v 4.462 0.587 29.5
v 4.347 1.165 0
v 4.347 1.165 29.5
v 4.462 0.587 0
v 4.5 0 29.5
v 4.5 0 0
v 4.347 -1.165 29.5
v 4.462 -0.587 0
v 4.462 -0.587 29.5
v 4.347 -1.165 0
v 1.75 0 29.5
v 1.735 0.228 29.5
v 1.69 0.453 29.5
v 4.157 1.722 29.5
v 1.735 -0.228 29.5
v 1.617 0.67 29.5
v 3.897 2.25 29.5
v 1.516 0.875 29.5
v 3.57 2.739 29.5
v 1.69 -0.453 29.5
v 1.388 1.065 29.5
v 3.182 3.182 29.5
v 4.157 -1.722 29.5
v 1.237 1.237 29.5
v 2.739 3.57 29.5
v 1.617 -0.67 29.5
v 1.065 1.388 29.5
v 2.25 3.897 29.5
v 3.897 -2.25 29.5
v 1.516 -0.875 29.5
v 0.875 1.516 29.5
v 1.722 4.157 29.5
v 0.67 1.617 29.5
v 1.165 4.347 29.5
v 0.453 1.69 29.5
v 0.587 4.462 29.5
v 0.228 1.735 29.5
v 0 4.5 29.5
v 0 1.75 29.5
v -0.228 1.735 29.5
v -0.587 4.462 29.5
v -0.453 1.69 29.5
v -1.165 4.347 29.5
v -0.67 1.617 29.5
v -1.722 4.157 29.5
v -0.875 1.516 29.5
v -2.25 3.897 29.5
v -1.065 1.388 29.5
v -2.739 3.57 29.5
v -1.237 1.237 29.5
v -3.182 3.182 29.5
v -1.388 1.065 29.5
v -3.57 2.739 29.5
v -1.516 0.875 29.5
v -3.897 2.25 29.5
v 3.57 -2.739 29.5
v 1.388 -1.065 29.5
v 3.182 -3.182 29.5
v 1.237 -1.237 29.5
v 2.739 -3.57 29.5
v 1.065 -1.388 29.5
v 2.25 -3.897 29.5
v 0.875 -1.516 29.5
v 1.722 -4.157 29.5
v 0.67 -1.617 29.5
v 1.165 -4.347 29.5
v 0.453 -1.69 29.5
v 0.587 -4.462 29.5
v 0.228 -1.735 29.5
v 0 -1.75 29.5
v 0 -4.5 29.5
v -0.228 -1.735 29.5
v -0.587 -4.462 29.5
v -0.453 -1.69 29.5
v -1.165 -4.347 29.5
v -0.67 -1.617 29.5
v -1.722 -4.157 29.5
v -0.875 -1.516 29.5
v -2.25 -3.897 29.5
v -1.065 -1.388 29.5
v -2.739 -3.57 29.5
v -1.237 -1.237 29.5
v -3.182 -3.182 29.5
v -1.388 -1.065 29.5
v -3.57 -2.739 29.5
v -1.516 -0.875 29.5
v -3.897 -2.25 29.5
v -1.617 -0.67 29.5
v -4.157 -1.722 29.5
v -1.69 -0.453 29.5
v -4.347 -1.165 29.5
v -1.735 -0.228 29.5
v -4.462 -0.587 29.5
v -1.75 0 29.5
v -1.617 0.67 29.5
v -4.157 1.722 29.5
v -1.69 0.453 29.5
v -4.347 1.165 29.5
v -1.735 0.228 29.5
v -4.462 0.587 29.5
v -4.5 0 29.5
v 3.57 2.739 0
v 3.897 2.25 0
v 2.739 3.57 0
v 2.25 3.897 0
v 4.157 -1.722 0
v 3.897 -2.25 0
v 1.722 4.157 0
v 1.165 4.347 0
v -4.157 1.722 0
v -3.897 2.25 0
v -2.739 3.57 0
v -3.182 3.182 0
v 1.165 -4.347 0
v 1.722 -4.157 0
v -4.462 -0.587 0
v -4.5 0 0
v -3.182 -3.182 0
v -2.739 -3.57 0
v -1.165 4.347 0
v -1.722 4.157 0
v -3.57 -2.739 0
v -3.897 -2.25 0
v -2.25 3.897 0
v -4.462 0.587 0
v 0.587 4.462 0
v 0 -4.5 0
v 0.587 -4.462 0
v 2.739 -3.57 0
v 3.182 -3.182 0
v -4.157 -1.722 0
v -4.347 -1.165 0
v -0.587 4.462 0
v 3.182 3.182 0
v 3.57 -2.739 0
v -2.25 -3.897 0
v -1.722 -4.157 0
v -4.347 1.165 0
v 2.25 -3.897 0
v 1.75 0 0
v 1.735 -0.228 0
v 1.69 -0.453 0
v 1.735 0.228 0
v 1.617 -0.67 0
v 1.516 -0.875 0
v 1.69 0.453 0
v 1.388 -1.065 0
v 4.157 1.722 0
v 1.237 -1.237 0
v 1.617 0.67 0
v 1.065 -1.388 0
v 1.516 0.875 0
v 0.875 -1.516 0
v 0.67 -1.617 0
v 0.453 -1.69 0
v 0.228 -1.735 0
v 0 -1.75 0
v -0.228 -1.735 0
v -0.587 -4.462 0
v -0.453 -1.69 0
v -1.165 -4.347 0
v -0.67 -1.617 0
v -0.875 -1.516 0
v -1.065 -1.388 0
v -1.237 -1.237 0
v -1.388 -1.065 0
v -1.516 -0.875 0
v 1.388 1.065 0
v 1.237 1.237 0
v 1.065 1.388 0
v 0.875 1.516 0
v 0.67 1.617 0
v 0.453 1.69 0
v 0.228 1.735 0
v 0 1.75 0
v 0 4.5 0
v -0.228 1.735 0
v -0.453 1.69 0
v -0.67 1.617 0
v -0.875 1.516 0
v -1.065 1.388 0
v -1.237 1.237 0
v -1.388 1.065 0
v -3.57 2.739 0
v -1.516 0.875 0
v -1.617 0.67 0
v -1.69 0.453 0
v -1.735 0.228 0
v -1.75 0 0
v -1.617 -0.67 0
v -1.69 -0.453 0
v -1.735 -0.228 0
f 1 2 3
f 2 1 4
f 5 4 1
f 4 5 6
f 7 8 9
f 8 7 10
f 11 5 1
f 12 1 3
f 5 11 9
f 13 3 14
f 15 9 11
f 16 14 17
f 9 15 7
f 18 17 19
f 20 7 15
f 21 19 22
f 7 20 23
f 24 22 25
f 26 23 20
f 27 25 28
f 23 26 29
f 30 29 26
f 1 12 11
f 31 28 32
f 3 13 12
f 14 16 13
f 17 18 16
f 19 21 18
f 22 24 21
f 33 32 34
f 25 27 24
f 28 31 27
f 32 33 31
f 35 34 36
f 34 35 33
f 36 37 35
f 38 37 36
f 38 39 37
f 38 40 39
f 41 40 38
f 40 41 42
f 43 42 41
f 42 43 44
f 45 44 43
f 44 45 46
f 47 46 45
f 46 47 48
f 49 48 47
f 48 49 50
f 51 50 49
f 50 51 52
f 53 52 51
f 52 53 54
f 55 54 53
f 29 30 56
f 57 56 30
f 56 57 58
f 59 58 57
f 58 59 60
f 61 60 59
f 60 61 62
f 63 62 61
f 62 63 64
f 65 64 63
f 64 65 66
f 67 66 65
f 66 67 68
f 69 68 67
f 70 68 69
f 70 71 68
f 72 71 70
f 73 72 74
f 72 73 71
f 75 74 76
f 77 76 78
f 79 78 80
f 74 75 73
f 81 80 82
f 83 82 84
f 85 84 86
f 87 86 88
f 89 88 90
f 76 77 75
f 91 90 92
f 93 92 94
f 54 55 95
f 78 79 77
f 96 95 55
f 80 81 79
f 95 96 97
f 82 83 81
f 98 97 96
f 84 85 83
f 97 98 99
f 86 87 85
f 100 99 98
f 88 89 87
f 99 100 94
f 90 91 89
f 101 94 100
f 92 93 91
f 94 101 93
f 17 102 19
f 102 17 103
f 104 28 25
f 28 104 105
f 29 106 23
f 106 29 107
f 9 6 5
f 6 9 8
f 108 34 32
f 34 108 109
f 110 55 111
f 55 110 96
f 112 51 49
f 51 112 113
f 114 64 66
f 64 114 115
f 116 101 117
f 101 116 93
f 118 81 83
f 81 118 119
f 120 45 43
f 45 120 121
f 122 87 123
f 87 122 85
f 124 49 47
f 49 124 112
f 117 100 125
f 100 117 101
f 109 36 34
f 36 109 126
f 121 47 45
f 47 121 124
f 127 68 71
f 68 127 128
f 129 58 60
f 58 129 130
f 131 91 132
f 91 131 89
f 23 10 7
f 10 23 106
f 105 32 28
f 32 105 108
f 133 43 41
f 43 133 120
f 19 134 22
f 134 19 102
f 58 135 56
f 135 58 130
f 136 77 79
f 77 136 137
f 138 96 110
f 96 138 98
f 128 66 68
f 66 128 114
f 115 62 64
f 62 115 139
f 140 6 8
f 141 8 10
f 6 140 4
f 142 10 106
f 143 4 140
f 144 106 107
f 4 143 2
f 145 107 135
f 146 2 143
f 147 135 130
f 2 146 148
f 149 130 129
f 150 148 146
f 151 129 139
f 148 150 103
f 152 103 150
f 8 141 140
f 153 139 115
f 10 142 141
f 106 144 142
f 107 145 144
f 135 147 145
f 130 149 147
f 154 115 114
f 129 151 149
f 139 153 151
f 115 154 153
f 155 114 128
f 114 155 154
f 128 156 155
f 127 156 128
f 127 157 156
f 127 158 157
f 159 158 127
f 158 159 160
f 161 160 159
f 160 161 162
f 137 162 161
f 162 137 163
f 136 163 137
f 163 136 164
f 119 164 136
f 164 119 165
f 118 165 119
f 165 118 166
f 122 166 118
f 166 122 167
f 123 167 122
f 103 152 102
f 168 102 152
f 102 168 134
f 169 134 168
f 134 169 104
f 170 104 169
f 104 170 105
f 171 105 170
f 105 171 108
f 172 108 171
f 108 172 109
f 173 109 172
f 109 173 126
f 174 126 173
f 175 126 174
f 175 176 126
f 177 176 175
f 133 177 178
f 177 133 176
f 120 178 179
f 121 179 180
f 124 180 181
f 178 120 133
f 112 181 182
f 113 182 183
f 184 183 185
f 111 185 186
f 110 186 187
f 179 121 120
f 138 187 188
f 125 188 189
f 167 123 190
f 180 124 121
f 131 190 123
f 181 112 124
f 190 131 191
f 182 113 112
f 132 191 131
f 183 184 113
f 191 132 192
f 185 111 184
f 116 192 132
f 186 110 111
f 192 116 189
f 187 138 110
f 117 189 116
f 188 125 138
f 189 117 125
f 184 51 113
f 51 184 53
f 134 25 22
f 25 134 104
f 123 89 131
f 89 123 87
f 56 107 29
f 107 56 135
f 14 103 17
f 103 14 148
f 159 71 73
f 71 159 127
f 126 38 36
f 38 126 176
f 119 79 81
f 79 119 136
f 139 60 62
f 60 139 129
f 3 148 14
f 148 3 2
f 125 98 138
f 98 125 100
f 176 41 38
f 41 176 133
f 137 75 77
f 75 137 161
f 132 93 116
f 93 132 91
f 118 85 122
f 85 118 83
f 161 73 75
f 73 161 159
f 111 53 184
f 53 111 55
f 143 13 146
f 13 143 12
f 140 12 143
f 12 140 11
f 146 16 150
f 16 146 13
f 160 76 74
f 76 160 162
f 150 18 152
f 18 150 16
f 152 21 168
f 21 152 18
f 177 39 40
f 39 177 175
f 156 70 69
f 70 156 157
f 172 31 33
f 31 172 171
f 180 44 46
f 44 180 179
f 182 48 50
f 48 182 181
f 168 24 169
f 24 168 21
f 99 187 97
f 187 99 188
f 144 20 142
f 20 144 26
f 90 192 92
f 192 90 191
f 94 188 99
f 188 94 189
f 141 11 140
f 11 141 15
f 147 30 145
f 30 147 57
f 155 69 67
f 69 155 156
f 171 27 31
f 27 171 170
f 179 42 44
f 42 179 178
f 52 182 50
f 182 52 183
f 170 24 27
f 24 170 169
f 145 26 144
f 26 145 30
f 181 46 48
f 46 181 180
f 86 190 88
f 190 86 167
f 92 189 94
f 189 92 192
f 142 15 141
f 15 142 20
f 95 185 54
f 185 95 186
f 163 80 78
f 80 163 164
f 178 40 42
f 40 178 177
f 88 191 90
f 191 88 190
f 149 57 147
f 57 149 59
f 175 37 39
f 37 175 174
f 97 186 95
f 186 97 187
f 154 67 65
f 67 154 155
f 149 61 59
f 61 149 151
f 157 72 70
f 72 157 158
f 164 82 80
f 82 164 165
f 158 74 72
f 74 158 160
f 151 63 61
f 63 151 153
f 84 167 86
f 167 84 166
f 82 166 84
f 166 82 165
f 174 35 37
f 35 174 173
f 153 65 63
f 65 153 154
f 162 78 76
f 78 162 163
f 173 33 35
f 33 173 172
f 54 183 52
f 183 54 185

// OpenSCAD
// file: parameters.scad
// =============================================================================
// Gen-CB — nightly 2026-10-13 (physics_scorer, honest magpylib watts)
// Wire-saver stator for the Gen-CA rotors: only 4.05 mm of copper (9 layers), so the magnet faces are 6.65 mm apart and peak Bz at the copper reaches ≈0.70 T. It needs ≈300 m of wire (≈80 m less than Gen-CA, ≈75 m less than Gen-BX) and still out-scores the Gen-BX champion; it shares every rotor part, the steel, the frame rods and the bearing bridges with Gen-CA, so the two stators swap on the same machine.
// Clocking 0 deg (magnets N facing S) + D-flat keyed bore + index notch + flip-symmetric hole map.
// Windable 2-piece bobbin; turns = physics_scorer turns_fit; copper only between flanges.
// Steel back-iron: 2× Ø194 × 4.76 mm (3/16") mild-steel discs (steel_backiron_disc.dxf); magnets sit ON the steel
// (through-pockets) -> score with --back-iron. Night 2026-10-13.
// =============================================================================
topology            = "dual_rotor";

// --- Wire / winding (physics_scorer winding-fit) -------------------------------
wire_awg            = 26;
wire_od             = 0.45;     // insulated OD mm (bare 0.405)
fill_realistic      = 0.65;     // insulated-wire area / window (DENSE layered wind with a jig; scorer cap 0.65)
turns               = 292;       // = physics_scorer turns_fit (do NOT raise)
coil_former_type    = "bobbin";
coil_core_inset     = 17.70;     // radial copper build: hub = copper boundary inset by this
wind_build_axial    = 0.0;      // nothing proud of the flanges
wind_build_radial   = 0.0;

// --- Bobbin (base + lid) ---------------------------------------------------------
coil_id_r           = 63.00;    // copper boundary sector
coil_od_r           = 102.00;
span_deg            = 26.82;    // = pitch - 2*asin((wall+0.85)/coil_id_r) -> >=1.2 mm stator web
former_web          = 4.05;     // copper height between flanges (TALL copper: steel keeps Bz up)
flange_t            = 0.80;     // >= 0.8 mm FDM wall rule (tall winds push on the flanges)
wall                = 0.80;     // flange lip beyond copper
former_bare_h       = former_web + 2 * flange_t;
coil_envelope_h     = former_bare_h + 2 * wind_build_axial;
tab_w               = 7.0;
tab_len             = 7.0;
tab_h               = former_bare_h / 2;
pin_d               = 1.9;      // 1.75 mm filament locating pin
coil_mount_r        = coil_od_r + 0.2 + 4.0;
lead_y              = 1.6;
lead_slot_w         = 0.9;
lead_groove_d       = 0.6;

// --- Gap -------------------------------------------------------------------------
run_clear           = 0.50;     // rotor face -> flange
gap_spacer_h        = run_clear + wind_build_axial;
m2m                 = coil_envelope_h + 2 * run_clear;   // rotor face to rotor face (= gap_sleeve length)

// --- Stator ----------------------------------------------------------------------
coil_stations       = 12;
bay_clear           = 0.35;     // 0.35 mm: bobbin BASES print IN PLACE inside the stator bays (print-in-place gap), then pop out
stator_thick        = former_bare_h;                        // bobbins flush both faces
stator_od           = 225.0;
shaft_clear_stator  = 14.0;     // stator is static; gap sleeve OD 12 spins inside
stator_ir           = 57.85;    // ANNULAR stator: open centre (nested one-plate pack); inner rim 4.0 mm

// --- Rotor(s) --------------------------------------------------------------------
magnet_Br           = 1.43;     // N52
magnet_d_large      = 20.0;
magnet_h_large      = 5.0;      // one O20x5 per pocket
magnet_h_small      = 5.0;      // unused: no O5 pockets in this kit
halbach_magnetisation = "none";  // NO O5 assist magnets in this kit (scan: they lower the 4-pole score)
rotor_b_same_axis   = true;     // same-index magnets share one axis: N faces S across the gap
large_pocket_d      = 20.3;
small_pocket_d      = 5.3;
pocket_h            = 5.00;     // THROUGH the carrier: magnet back face sits on the steel disc (FLUSH seat: carrier = magnet height, magnet face level with the rotor face)
large_n             = 8;
R_large             = 84.0;
small_r_list        = [];       // no O5 pockets
carrier_od          = 194.0;
ring_ir             = 70.85;    // RING rotor: PLA magnet ring r ring_ir..carrier_od/2 (steel disc = structural rotor)
hub_flange_od       = 74.0;     // separate rotor_hub flange (inside the ring, flush with the ring face)
csk_d               = 6.6;      // M3 countersunk head pocket (ISO 10642 head 6.0 nominal) on the stator face
csk_depth           = 1.55;     // = (csk_d - m3_clear) / 2: 90 deg cone; head sits 0.3 mm below the face
n_seg               = 8;        // magnet-carrier ARCS per rotor (segmented carrier)
seg_deg             = 360 / n_seg;
seg_start           = -22.5;   // arc edge angle (between pocket 0 and its clamp bolt)
seg_kerf_deg        = 0.4;      // gap between neighbouring arcs on the steel
carrier_thick       = pocket_h;
hub_h               = 12.0;     // > steel_t + insert: radial set-screw clears the steel
hub_od              = 24.0;     // slim hub so the M4 brace rods fit at R~18 inside the coil ring
hub_insert_d        = 4.0;      // M3 heat-set insert, radial, bears on the D-flat
rotor_b_offset_deg  = 0.0;      // CLOCKING: magnets directly opposite
shaft_key           = "dflat";
dflat_depth         = 0.5;      // 8 mm shaft with 0.5 mm flat (7.5 across flat)
index_notch_d       = 3.0;

// --- Steel back-iron (buyable laser-cut) -------------------------------------------
steel_t             = 4.76;      // mild steel thickness (image method ignores it; sized from steel_flux.py so the return path stays well below saturation)
steel_center_hole   = 26.0;     // slips over the rotor hub (OD 24)
steel_od            = carrier_od;   // steel disc OD = rotor carrier OD

// --- Modular MAX interface ----------------------------------------------------------
shaft_bore          = 8.35;
dflat_x             = 4.0 - dflat_depth + (shaft_bore - 8.0) / 2;
bearing_d           = 21.85;
bearing_h           = 7.2;
m3_clear            = 3.5;
bolt_r_inner        = 30.0;     // M3 steel-disc clamp bolts (inside the magnet ring)
bolt_n_inner        = 4;
bolt_inner_angles   = [0, 90, 180, 270];
bolt_r_outer        = 84.0;     // second M3 steel-disc clamp ring
bolt_outer_angles   = [22.5, 67.5, 112.5, 157.5, 202.5, 247.5, 292.5, 337.5];
flange_bolt_r       = 107.5;     // frame rods: OUTSIDE the rotor OD (rotors spin inside them)
flange_bolt_n       = 4;
flange_bolt_offset  = 45.00;    // between coil stations -> never cuts a lead groove/tab
brace_r             = 18.0;
brace_d             = 4.3;      // temporary M4 jack rods (assembly only)
brace_n             = 4;
brace_angles        = [45, 135, 225, 315];          // flip-symmetric

spacer_pad_od       = 14.0;
spacer_pad_id       = m3_clear;
endbell_od          = 225.0;
endbell_thick       = 8.0;
endbell_shaft_clear = 10.0;
collar_h            = 10.0;
standoff_od         = 9.0;
frame_standoff_h    = run_clear + carrier_thick + hub_h + collar_h + 2.0;
sleeve_od           = 12.0;
plate_max_mm        = 410;

$fn = 64;
// main file
// Gen-CB — frame standoff tube between stator and an endbell, on each M3 frame rod (outside rotor OD).
// Print x4. Height = frame_standoff_h (rotor + steel + hub + collar + running clearance).
include <parameters.scad>;
$fn = 48;
difference() {
    cylinder(d=standoff_od, h=frame_standoff_h);
    translate([0, 0, -0.1]) cylinder(d=m3_clear, h=frame_standoff_h + 0.2);
}
